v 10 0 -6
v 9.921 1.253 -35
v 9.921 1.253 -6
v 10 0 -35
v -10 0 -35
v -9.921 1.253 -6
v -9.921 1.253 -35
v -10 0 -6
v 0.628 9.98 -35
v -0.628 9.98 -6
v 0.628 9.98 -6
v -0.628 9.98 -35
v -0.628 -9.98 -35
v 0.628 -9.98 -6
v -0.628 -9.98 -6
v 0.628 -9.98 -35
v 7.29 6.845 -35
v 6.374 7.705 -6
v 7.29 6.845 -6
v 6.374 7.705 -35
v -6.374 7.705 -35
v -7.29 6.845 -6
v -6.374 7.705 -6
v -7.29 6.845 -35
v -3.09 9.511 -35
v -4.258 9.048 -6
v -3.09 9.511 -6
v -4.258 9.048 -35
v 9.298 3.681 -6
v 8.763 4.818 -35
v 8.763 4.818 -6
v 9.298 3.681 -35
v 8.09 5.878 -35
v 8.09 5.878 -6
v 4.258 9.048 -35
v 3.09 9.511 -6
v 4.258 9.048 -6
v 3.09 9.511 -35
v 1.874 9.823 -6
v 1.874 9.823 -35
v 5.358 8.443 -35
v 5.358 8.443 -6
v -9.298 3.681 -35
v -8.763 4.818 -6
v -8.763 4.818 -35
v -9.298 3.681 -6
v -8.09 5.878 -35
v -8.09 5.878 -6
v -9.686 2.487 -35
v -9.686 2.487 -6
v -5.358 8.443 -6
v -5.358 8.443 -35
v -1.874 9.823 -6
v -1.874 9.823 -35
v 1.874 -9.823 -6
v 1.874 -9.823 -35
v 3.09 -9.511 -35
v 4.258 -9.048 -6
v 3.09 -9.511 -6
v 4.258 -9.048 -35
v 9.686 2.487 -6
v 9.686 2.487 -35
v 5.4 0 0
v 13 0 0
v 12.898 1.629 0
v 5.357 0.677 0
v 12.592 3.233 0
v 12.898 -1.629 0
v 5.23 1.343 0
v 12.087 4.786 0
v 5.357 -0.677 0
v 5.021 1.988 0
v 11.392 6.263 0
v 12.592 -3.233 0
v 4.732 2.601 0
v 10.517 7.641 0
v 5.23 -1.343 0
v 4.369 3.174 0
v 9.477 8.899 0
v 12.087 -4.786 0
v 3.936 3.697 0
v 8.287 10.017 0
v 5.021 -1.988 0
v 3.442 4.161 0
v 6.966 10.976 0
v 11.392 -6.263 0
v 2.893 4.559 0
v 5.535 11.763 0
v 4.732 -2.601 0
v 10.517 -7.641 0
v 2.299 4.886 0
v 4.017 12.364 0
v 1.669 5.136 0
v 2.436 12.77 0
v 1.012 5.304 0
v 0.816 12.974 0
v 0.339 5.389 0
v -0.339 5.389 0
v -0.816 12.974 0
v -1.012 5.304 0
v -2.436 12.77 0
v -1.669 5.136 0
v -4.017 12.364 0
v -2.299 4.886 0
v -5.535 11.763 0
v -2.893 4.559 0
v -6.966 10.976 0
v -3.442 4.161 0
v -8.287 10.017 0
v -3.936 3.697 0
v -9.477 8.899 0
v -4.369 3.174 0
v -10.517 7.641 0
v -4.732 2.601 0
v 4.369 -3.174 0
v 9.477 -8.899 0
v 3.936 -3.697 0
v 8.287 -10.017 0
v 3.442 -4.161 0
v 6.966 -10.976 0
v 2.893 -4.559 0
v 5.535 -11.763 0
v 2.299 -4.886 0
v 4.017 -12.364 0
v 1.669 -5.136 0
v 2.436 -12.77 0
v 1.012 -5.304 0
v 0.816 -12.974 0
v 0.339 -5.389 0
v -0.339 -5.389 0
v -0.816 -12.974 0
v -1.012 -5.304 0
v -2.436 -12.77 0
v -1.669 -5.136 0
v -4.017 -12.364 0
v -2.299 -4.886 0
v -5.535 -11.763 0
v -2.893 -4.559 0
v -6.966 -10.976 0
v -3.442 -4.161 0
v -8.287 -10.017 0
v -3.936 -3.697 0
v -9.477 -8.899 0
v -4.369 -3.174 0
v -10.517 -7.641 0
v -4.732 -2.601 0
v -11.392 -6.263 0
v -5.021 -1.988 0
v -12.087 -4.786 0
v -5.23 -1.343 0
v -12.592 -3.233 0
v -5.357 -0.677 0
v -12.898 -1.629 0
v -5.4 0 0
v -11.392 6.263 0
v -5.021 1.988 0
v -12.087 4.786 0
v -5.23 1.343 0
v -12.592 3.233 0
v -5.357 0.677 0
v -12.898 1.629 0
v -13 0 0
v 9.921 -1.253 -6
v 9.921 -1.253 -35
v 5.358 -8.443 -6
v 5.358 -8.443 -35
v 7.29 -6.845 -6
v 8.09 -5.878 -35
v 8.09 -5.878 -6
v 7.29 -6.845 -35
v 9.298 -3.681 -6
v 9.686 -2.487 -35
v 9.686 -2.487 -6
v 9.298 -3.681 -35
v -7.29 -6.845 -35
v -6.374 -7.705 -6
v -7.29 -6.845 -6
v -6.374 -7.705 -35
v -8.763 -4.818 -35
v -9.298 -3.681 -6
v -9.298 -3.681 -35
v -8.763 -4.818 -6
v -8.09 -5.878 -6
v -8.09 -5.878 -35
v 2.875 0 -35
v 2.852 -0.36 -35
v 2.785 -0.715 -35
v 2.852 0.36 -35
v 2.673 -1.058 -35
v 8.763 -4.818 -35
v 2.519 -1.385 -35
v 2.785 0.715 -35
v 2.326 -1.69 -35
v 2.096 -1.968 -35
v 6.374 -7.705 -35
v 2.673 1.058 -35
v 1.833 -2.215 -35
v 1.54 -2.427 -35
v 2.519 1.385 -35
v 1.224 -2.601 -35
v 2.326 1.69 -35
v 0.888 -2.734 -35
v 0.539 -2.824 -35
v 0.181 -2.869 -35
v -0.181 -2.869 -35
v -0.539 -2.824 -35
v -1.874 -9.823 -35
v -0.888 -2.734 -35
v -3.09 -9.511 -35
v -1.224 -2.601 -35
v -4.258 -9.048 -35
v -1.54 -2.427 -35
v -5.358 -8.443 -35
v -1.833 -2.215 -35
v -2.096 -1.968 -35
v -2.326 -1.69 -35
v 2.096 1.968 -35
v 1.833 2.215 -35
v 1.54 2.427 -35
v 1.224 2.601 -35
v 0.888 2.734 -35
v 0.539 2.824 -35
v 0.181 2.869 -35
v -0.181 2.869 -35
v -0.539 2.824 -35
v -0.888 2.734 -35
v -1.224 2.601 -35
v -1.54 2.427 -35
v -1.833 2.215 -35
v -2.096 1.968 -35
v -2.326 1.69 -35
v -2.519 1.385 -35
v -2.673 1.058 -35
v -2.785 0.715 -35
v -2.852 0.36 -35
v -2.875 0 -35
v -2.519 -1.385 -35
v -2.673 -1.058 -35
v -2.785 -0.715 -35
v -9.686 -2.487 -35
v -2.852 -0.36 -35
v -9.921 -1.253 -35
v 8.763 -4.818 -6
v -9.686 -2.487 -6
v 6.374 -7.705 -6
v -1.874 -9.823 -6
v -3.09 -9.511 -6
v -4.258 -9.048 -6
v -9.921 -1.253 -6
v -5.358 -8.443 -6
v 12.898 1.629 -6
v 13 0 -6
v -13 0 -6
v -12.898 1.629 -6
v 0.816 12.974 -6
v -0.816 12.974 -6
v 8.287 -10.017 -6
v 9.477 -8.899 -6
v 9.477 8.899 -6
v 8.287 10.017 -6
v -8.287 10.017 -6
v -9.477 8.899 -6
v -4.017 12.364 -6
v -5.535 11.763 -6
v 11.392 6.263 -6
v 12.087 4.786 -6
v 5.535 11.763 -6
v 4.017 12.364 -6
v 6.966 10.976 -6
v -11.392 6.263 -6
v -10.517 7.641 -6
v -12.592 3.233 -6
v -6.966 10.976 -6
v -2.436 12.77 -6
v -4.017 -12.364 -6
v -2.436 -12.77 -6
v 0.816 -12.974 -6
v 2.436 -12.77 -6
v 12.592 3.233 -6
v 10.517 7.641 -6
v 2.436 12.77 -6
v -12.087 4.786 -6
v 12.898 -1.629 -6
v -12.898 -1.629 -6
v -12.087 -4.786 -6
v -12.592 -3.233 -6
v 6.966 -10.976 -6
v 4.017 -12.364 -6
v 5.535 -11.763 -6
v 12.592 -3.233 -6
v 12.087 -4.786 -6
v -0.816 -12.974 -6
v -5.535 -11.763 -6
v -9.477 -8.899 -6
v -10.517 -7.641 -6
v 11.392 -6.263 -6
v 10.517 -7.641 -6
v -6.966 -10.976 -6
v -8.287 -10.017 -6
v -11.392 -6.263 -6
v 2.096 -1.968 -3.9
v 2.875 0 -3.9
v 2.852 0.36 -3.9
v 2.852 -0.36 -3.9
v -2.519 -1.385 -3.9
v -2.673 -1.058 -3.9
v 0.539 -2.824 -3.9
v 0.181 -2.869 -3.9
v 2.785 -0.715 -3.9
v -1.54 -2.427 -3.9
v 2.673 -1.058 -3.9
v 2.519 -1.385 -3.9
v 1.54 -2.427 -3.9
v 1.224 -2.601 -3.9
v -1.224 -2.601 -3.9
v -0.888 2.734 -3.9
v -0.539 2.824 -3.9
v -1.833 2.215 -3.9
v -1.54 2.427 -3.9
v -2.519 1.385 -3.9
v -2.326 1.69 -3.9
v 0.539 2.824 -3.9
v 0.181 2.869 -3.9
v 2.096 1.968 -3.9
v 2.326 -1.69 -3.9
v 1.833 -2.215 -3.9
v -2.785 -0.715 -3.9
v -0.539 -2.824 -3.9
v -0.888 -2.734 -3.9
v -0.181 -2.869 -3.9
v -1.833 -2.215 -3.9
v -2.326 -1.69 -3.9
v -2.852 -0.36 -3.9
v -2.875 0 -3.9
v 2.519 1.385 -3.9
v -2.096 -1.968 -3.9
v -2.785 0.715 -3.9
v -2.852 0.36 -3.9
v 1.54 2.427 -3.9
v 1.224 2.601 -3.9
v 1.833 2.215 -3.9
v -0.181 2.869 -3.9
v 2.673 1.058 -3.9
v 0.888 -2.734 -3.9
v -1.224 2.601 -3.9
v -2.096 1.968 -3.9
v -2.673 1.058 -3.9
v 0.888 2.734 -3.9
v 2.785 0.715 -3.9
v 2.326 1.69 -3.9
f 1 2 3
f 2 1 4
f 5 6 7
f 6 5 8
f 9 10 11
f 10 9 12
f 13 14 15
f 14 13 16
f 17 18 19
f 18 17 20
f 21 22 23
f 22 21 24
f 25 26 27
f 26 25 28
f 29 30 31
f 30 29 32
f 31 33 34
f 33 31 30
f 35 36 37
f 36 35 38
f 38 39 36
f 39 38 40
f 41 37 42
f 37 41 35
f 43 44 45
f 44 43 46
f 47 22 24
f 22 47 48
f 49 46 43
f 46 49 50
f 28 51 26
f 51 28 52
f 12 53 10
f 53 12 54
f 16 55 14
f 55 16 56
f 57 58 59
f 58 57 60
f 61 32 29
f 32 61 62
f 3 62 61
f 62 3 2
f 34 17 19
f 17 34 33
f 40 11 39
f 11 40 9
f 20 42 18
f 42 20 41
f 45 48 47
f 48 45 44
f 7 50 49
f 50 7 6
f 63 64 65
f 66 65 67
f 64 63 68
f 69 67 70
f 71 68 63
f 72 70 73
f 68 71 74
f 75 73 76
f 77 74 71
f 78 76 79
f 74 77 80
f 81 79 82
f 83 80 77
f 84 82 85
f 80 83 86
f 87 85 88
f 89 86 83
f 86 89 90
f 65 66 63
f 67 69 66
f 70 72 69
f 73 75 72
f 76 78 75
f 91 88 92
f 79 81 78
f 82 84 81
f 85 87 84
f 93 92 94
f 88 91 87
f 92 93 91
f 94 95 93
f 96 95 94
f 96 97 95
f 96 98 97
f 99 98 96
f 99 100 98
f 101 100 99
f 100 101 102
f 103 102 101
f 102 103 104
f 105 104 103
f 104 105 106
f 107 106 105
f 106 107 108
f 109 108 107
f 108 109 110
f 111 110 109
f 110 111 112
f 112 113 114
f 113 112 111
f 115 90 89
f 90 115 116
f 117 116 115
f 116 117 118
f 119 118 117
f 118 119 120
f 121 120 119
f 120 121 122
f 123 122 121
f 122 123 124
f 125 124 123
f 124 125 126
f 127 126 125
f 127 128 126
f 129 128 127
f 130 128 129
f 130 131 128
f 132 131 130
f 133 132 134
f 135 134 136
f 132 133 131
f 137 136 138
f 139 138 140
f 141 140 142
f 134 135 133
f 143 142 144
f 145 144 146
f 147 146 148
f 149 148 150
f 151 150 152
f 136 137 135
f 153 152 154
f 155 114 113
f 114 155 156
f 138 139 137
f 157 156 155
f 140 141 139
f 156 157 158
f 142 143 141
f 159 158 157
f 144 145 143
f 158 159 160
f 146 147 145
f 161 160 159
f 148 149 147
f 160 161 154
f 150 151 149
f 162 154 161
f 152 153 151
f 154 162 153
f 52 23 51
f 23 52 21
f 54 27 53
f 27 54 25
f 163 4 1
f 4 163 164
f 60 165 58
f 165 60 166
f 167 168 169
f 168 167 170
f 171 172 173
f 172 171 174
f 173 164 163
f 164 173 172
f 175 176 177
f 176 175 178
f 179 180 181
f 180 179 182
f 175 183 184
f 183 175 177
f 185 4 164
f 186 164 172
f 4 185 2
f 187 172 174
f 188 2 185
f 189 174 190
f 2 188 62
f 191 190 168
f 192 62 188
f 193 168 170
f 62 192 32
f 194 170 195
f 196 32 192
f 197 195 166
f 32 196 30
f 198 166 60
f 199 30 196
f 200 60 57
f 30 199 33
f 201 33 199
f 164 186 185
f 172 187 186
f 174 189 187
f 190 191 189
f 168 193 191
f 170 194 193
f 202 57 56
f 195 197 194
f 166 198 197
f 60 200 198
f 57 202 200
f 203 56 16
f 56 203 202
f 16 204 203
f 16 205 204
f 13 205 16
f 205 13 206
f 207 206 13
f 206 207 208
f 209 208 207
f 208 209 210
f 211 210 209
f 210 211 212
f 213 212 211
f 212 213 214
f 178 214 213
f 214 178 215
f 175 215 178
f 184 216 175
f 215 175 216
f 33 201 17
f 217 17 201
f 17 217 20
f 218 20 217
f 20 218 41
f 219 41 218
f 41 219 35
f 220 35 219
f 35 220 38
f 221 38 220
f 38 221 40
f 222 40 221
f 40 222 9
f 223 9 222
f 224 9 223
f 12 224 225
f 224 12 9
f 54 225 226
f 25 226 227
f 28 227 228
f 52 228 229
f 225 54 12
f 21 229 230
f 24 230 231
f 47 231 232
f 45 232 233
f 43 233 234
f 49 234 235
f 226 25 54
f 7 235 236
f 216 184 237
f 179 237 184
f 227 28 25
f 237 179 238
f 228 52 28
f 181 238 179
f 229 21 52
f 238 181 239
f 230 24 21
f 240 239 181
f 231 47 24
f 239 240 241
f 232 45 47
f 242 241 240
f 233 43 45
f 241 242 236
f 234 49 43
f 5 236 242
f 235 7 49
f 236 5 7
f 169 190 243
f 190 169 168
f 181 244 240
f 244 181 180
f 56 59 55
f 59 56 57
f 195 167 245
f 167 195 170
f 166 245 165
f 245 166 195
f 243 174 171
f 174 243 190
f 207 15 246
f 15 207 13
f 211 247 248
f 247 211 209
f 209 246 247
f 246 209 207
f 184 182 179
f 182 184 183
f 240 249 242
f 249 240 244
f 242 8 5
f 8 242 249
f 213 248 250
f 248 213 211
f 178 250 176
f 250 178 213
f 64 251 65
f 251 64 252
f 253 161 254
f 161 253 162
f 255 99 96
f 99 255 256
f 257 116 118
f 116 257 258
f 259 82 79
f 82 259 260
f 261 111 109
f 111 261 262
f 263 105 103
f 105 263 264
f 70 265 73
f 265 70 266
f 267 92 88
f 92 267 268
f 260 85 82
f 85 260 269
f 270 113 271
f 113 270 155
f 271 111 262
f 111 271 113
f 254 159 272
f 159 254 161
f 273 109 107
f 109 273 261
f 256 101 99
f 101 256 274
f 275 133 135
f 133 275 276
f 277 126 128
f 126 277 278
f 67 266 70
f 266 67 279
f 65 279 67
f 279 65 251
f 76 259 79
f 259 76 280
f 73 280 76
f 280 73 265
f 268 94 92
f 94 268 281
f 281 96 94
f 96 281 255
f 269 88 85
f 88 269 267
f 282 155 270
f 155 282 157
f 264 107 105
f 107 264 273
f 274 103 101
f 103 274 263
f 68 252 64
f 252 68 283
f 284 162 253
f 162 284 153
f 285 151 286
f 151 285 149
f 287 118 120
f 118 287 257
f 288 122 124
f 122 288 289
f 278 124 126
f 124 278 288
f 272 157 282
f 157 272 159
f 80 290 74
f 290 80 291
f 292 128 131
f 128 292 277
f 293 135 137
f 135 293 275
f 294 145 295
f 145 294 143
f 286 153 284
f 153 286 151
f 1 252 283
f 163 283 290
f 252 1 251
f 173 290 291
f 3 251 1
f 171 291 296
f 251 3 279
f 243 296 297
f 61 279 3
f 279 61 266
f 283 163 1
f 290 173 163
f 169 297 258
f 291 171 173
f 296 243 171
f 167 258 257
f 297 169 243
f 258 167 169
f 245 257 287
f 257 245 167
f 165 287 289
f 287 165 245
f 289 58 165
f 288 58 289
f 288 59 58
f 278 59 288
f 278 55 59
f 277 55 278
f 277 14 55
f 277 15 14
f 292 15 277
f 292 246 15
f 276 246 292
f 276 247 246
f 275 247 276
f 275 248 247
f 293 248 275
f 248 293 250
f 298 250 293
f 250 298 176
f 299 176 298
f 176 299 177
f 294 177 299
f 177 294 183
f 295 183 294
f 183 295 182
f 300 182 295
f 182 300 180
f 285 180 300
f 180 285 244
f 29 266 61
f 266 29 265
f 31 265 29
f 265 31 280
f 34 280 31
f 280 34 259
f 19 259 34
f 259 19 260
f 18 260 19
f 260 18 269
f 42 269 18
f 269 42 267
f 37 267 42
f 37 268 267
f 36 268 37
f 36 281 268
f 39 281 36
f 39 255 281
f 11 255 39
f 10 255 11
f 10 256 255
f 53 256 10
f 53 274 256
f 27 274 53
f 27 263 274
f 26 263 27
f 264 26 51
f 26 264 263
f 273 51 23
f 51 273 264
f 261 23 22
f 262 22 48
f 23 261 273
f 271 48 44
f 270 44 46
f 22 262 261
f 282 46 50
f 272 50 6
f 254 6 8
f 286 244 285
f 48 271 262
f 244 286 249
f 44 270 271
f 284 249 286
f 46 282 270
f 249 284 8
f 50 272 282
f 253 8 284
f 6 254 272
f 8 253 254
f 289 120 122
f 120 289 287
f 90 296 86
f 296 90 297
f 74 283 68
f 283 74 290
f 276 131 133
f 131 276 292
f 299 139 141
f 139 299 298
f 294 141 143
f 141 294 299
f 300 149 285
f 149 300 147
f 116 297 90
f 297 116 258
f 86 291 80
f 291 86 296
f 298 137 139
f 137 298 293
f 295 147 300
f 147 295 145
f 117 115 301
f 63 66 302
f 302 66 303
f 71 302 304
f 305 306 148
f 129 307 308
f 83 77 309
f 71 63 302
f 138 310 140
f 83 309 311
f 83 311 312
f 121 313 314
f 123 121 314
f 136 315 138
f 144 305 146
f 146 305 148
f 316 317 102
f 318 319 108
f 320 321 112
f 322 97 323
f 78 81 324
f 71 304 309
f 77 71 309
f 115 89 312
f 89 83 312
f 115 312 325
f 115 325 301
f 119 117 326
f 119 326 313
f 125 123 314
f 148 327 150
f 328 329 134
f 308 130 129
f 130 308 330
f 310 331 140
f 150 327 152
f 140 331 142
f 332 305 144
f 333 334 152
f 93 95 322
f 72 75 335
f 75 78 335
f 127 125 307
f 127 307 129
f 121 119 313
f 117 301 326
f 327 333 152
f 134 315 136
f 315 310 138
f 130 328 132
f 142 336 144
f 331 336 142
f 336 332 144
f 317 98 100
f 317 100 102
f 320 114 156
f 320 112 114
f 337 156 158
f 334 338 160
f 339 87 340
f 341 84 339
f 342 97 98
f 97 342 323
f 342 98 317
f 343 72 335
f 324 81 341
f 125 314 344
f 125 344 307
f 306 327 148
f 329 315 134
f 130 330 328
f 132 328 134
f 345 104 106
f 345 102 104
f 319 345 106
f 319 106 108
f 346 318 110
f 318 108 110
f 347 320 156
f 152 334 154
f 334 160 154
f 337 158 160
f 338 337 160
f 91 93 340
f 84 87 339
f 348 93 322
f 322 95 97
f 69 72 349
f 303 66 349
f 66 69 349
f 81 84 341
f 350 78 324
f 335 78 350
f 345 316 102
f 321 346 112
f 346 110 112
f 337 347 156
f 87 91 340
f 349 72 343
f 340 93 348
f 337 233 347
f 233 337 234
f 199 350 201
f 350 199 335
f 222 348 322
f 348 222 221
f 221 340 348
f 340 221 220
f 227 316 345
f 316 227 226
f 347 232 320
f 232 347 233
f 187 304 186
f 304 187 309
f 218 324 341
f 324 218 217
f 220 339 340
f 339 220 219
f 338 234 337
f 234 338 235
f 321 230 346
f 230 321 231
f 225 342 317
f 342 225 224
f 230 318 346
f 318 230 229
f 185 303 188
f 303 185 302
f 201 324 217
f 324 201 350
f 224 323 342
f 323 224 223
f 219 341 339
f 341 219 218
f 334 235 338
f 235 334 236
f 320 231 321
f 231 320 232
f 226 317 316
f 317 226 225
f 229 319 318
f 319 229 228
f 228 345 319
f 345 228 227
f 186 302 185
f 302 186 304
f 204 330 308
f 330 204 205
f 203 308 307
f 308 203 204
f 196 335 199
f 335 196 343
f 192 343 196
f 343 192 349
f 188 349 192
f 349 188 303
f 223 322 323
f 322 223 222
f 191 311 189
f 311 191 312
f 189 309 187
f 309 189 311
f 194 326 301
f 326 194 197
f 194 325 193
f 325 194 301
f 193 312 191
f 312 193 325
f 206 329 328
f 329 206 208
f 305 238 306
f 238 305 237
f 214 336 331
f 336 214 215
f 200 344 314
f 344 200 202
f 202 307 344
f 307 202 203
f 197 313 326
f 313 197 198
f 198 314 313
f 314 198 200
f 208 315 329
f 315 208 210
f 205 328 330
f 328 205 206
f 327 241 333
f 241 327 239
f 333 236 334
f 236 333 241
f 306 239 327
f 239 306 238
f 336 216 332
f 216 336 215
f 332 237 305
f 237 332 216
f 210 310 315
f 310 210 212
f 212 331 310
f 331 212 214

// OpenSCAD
$fn = 50;


difference() {
	union() {
		translate(v = [0, 0, -35.0000000000]) {
			cylinder(h = 35, r = 10.0000000000);
		}
		translate(v = [0, 0, -6.0000000000]) {
			cylinder(h = 6, r = 13.0000000000);
		}
	}
	union() {
		translate(v = [0, 0, 0]) {
			rotate(a = [0, 0, 0]) {
				difference() {
					union() {
						#translate(v = [0, 0, -35.0000000000]) {
							cylinder(h = 35, r = 2.6000000000);
						}
						#translate(v = [0, 0, -3.9000000000]) {
							cylinder(h = 3.9000000000, r = 10.0000000000, r1 = 2.8750000000, r2 = 5.4000000000);
						}
						#translate(v = [0, 0, -35.0000000000]) {
							cylinder(h = 35, r = 2.8750000000);
						}
						#translate(v = [0, 0, -35.0000000000]) {
							cylinder(h = 35, r = 2.6000000000);
						}
					}
					union();
				}
			}
		}
	}
}
